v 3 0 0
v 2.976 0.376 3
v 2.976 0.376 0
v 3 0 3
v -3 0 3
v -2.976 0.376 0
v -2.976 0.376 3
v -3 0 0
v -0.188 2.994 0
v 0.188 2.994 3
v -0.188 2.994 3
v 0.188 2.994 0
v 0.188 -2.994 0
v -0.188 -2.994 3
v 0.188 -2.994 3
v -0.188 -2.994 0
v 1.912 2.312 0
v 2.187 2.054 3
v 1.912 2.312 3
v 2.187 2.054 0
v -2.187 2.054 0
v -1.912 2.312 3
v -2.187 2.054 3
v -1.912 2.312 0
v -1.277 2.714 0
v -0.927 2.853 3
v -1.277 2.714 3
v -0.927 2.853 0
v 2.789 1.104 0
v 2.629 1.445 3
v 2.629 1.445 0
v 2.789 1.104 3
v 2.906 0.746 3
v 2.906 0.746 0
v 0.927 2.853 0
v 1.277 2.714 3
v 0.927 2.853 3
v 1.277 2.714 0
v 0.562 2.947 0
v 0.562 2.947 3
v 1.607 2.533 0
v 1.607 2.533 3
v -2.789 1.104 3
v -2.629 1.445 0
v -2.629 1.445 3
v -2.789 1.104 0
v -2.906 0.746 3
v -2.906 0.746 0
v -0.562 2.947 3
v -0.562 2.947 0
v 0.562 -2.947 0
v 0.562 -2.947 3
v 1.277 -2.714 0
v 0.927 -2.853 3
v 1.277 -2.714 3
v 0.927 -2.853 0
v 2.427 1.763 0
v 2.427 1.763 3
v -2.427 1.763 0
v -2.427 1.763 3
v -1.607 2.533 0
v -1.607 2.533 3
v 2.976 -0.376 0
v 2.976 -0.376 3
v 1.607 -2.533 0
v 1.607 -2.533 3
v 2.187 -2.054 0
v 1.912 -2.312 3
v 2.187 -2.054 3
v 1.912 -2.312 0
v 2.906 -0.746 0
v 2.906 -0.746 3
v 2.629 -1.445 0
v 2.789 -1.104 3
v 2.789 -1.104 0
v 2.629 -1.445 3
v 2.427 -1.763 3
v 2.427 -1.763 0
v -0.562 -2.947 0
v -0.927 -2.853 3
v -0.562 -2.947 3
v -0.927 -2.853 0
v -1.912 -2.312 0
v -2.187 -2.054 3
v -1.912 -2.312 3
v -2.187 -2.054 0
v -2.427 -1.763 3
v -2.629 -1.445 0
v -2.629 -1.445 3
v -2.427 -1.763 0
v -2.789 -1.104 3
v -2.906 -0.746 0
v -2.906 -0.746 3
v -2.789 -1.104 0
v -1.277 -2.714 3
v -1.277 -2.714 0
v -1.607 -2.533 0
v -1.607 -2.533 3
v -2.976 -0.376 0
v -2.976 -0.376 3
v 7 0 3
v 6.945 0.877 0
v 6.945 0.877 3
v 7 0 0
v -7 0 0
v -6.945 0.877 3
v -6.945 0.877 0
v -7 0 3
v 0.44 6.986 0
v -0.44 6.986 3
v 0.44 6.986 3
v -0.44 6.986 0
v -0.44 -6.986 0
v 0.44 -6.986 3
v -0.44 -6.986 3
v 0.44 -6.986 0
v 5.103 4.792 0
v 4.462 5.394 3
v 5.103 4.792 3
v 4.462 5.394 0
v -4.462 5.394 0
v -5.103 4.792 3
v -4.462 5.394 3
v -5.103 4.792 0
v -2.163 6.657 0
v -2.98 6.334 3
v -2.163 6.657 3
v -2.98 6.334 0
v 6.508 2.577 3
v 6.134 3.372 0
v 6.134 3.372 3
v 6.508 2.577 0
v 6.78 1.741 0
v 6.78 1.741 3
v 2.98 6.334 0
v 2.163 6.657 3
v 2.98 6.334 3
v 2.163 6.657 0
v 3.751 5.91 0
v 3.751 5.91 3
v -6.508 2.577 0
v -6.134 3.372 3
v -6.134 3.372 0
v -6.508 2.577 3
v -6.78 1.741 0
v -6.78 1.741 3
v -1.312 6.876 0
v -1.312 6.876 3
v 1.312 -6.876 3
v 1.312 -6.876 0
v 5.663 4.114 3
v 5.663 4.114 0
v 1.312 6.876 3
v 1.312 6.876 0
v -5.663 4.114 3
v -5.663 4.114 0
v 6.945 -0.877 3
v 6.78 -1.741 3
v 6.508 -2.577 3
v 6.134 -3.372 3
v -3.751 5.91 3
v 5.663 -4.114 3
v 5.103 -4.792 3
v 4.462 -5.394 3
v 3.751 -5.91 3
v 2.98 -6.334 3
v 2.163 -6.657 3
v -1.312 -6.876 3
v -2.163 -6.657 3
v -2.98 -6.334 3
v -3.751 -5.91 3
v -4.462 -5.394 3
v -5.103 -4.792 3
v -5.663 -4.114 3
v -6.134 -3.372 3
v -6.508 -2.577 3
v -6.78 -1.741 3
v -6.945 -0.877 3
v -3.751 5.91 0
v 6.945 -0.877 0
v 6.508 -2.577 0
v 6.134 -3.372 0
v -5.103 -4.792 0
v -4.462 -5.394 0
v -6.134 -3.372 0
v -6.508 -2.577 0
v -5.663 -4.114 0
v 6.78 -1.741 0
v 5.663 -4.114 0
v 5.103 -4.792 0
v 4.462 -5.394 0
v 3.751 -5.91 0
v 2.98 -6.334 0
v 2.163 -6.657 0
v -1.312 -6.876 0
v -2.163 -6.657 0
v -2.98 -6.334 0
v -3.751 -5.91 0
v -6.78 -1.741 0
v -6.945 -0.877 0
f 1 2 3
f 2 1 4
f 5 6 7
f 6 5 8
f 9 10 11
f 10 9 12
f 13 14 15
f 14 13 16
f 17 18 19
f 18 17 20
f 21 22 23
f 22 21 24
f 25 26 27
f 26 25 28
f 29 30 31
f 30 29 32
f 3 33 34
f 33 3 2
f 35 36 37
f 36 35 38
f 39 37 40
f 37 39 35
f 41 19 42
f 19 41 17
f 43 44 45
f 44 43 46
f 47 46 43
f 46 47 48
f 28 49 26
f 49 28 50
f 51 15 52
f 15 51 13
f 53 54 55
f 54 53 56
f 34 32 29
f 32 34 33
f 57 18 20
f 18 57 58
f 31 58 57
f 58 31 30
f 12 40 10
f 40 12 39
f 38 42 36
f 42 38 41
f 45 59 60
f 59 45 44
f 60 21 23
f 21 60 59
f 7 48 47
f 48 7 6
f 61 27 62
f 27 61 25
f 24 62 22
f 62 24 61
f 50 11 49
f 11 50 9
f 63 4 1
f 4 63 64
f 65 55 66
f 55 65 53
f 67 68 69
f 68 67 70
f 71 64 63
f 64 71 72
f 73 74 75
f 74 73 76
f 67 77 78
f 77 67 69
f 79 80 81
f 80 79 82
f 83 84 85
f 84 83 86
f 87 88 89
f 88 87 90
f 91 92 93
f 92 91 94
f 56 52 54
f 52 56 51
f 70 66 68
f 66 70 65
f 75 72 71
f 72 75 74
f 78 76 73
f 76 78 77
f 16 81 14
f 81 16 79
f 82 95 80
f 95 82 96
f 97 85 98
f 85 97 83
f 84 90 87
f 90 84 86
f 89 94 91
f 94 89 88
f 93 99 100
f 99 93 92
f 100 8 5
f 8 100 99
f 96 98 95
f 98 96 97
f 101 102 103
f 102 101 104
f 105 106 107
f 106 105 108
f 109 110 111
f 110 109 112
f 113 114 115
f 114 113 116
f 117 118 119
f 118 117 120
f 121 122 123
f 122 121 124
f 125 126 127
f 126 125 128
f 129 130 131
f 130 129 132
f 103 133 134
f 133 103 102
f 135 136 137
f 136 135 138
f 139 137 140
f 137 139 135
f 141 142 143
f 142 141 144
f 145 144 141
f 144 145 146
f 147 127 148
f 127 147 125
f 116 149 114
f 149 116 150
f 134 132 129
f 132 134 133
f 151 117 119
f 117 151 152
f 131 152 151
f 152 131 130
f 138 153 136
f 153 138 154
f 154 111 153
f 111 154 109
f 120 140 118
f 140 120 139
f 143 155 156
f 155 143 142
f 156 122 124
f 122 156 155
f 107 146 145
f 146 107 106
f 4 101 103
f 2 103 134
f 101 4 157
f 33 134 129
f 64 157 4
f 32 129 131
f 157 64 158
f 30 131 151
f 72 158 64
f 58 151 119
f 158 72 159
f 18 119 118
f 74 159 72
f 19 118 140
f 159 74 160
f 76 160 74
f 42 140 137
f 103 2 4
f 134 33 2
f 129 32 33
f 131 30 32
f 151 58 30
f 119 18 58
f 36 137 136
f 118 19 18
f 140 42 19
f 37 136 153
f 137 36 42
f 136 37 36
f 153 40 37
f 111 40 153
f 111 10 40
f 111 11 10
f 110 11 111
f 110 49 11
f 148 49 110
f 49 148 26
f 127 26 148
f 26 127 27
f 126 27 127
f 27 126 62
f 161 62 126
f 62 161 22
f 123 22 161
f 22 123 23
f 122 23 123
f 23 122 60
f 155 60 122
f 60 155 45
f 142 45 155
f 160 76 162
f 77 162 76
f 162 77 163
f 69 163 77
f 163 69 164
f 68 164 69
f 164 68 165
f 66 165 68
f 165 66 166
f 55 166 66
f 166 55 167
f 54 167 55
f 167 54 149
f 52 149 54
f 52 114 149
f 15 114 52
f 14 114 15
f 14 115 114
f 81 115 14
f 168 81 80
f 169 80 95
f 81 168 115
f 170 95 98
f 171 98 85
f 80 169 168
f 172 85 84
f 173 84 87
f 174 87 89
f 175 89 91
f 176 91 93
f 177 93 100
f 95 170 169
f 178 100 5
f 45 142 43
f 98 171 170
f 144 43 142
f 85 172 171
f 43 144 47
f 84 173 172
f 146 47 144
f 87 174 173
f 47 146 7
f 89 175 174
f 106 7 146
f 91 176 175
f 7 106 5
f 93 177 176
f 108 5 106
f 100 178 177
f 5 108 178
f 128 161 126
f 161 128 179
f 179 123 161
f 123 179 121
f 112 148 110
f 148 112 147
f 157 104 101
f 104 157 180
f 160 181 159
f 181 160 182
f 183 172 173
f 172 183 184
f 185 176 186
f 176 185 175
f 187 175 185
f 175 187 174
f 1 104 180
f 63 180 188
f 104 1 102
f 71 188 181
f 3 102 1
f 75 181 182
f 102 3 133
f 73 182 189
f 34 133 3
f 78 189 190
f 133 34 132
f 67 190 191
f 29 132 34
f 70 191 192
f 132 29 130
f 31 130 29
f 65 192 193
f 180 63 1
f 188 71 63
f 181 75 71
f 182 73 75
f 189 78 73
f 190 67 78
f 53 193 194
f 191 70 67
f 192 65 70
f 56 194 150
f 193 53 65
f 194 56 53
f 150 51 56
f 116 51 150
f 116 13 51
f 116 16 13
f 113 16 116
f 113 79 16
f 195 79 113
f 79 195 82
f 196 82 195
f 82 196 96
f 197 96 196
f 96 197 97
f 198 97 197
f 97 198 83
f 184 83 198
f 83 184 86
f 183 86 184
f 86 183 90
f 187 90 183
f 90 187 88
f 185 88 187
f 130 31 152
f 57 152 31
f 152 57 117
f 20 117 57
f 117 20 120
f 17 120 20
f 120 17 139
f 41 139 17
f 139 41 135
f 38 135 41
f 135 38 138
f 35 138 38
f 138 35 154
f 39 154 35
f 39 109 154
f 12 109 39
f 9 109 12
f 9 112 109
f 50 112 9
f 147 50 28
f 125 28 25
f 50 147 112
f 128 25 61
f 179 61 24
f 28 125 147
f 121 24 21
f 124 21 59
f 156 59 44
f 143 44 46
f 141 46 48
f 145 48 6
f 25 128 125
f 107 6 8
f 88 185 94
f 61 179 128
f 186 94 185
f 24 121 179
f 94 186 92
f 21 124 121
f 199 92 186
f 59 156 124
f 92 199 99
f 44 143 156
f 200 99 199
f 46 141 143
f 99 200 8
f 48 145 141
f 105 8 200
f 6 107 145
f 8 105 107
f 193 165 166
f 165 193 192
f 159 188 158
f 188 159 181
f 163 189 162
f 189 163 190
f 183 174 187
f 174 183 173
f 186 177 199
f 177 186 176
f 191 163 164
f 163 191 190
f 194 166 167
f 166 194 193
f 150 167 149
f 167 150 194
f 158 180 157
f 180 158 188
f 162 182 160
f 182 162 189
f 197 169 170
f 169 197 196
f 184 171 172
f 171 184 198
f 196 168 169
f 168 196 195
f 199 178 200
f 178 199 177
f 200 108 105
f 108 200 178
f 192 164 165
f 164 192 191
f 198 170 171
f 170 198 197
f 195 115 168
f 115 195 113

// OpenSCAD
$fn = 50;


difference() {
	union() {
		cylinder(h = 3, r = 7.0000000000);
	}
	union() {
		cylinder(h = 3, r = 3.0000000000);
		cylinder(h = 3, r = 1.5000000000);
		cylinder(h = 3, r = 1.5000000000);
		cylinder(h = 3, r = 1.5000000000);
	}
}
